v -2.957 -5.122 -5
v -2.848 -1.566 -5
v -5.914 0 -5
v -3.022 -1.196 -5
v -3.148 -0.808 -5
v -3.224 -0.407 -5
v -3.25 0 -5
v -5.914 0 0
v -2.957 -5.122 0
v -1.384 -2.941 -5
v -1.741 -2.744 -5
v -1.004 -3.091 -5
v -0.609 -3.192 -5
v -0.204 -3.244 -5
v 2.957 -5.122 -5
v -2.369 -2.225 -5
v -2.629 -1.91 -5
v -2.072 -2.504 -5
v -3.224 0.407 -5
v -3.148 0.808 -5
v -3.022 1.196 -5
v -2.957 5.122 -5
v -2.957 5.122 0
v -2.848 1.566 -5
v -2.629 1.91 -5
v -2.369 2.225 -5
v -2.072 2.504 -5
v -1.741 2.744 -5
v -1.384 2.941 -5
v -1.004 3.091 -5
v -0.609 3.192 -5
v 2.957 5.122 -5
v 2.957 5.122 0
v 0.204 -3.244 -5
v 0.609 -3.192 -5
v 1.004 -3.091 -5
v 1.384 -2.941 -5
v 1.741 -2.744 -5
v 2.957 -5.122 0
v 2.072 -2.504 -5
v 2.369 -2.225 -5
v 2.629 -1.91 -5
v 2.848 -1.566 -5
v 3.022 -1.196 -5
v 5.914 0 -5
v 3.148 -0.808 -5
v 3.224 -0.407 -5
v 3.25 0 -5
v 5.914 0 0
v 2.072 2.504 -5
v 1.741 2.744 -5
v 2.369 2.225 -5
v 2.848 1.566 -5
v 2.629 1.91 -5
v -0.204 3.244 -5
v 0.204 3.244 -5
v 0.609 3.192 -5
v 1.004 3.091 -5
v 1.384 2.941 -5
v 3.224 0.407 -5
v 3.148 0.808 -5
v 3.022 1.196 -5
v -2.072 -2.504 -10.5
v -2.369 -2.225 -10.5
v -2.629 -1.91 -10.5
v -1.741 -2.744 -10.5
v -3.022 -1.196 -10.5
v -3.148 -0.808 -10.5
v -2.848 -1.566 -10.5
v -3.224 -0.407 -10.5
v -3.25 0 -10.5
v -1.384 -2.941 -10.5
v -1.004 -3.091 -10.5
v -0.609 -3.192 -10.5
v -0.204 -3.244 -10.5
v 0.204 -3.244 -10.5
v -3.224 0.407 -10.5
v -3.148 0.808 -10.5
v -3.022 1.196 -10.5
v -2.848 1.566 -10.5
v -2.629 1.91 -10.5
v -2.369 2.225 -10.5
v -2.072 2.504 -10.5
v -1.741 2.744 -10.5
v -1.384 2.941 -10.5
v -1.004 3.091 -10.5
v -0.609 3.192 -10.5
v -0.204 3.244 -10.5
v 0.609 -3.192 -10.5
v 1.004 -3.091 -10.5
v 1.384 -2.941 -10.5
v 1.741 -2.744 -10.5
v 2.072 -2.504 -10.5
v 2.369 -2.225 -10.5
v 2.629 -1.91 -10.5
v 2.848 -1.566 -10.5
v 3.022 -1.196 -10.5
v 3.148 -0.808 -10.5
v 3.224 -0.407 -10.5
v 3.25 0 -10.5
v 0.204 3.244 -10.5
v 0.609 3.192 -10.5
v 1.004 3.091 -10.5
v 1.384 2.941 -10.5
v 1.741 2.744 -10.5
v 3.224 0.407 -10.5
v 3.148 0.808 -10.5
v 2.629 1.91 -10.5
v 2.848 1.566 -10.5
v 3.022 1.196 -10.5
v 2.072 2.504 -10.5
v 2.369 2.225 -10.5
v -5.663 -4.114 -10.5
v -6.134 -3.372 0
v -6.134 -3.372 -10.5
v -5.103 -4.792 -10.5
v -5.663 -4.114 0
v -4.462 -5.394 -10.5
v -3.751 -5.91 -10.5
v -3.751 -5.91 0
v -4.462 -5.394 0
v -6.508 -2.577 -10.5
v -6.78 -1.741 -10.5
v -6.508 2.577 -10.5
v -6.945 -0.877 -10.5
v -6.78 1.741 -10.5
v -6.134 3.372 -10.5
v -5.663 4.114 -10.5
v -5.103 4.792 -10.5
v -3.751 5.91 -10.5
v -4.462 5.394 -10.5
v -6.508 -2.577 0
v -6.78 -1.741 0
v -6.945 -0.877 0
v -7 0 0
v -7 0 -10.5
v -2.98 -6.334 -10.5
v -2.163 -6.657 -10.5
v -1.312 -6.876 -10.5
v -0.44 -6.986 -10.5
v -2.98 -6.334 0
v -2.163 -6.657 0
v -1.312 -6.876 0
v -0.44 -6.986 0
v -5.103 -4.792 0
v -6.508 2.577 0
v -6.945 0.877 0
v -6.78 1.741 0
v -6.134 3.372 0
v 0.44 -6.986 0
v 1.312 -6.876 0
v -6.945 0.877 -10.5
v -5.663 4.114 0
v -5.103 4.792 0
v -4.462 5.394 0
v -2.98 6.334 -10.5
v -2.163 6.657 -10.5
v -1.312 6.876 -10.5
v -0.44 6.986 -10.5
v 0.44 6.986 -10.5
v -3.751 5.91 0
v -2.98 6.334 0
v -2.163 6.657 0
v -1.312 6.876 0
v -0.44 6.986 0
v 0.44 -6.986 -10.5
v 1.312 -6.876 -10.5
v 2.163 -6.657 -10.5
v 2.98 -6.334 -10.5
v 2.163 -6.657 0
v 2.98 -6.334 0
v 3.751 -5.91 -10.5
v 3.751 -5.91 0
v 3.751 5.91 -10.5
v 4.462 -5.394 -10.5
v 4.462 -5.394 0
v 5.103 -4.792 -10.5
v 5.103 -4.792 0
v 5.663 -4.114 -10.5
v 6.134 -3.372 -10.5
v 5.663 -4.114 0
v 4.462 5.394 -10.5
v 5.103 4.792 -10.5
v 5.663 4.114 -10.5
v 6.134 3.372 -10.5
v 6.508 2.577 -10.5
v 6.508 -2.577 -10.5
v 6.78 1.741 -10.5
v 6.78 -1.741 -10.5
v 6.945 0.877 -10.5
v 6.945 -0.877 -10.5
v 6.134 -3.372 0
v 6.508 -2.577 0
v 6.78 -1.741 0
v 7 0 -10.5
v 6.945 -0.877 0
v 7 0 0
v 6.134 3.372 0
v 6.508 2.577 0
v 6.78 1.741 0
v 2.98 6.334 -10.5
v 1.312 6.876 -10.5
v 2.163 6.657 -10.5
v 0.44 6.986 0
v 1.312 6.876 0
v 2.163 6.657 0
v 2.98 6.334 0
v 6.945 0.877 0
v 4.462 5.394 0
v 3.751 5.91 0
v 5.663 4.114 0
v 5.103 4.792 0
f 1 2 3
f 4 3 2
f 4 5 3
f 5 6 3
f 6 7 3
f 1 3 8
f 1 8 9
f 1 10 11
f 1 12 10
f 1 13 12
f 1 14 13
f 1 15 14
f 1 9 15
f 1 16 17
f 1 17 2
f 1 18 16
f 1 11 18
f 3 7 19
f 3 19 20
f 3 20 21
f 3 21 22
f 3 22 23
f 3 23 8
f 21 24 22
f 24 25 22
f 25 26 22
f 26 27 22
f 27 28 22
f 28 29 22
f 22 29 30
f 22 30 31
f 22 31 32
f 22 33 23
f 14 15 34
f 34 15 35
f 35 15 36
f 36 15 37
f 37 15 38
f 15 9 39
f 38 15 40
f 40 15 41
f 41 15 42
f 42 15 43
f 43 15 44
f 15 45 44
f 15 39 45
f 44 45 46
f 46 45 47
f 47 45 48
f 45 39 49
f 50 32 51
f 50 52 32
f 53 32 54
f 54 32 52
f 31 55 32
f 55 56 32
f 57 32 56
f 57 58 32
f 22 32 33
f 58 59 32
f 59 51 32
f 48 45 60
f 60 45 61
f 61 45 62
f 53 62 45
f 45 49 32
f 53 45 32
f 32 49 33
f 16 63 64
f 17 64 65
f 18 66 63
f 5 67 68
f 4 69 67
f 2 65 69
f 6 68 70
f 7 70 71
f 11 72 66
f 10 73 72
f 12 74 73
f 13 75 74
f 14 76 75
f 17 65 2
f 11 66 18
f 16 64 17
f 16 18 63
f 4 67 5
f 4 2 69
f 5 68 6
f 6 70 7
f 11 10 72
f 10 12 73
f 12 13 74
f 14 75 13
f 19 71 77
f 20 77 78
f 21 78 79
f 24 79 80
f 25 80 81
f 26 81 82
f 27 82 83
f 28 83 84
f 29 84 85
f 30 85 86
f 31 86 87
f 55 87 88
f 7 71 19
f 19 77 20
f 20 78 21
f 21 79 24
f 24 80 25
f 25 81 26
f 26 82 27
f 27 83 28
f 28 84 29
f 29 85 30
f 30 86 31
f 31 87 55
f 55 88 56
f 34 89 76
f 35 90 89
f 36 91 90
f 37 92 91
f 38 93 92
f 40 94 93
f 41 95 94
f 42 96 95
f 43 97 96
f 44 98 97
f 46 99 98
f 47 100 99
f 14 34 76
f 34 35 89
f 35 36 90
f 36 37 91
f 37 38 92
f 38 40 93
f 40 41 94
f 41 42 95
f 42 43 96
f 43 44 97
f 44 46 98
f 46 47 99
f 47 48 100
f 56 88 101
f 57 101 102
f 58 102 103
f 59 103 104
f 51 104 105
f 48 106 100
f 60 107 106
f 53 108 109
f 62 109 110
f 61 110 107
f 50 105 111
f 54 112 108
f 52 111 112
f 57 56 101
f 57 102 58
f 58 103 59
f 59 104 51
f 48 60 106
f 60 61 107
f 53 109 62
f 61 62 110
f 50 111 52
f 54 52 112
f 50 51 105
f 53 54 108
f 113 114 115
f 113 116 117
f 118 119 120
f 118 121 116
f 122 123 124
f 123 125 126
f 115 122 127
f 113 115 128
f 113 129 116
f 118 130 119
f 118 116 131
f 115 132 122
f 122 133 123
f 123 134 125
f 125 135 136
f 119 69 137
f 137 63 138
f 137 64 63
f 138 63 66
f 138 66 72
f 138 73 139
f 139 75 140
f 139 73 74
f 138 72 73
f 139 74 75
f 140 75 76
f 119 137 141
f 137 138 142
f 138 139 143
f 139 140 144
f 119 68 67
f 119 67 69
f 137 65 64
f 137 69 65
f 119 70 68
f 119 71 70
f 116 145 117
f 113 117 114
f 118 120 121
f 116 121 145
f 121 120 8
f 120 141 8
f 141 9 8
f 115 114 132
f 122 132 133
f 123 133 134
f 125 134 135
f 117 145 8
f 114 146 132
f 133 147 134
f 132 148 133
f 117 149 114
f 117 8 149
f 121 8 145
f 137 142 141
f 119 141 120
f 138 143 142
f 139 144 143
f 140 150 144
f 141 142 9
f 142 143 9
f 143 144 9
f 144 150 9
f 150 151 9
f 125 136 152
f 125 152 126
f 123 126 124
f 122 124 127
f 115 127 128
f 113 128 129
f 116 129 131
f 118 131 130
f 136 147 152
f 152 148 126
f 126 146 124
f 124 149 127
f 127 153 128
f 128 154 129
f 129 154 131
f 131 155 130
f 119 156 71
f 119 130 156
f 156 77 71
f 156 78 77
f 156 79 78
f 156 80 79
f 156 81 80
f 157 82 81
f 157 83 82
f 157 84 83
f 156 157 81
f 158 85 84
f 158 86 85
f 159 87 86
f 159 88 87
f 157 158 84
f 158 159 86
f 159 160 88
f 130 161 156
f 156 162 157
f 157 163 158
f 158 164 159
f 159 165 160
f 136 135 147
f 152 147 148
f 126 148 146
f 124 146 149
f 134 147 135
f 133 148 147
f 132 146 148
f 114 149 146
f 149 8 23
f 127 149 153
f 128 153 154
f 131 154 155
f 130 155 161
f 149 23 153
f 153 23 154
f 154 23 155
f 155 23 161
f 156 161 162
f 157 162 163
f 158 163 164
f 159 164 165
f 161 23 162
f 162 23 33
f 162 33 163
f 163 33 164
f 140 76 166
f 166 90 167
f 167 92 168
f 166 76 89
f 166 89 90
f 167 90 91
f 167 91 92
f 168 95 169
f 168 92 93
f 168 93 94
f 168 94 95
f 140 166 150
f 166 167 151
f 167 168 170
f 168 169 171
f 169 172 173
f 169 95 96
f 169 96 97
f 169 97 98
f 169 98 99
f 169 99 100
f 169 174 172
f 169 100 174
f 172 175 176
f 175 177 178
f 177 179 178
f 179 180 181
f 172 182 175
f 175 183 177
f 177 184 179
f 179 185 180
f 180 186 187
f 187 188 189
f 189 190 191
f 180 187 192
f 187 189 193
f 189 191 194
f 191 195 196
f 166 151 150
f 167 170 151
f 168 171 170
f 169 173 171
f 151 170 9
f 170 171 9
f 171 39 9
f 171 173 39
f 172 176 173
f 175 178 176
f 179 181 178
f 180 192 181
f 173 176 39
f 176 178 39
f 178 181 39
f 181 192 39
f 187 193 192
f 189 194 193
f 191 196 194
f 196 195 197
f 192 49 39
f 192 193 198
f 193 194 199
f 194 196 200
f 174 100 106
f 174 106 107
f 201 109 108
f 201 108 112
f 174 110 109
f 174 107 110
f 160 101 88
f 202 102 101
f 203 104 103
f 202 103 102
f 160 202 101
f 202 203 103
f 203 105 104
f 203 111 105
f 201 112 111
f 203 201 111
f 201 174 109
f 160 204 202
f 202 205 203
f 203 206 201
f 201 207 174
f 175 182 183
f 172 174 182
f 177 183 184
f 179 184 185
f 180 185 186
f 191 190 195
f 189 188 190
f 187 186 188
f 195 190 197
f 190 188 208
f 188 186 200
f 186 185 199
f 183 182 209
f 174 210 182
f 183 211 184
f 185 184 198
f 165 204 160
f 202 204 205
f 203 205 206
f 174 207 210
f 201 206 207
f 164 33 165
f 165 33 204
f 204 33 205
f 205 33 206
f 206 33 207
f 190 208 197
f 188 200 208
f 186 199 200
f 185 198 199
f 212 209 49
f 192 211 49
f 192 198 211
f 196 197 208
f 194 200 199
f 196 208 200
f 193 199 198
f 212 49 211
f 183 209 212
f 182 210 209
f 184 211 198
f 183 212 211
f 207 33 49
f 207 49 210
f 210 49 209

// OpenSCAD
$fn = 50;


difference() {
	union() {
		translate(v = [0, 0, -10.5000000000]) {
			cylinder(h = 10.5000000000, r = 7.0000000000);
		}
	}
	union() {
		translate(v = [0, 0, 0]) {
			rotate(a = [0, 0, 0]) {
				difference() {
					union() {
						translate(v = [0, 0, -5]) {
							linear_extrude(height = 5) {
								polygon(points = [[5.9142500000, 0.0000000000], [2.9571250000, 5.1218907443], [-2.9571250000, 5.1218907443], [-5.9142500000, 0.0000000000], [-2.9571250000, -5.1218907443], [2.9571250000, -5.1218907443]]);
							}
						}
					}
					union();
				}
			}
		}
		#translate(v = [0, 0, -100.0000000000]) {
			cylinder(h = 200, r = 3.2500000000);
		}
	}
}
